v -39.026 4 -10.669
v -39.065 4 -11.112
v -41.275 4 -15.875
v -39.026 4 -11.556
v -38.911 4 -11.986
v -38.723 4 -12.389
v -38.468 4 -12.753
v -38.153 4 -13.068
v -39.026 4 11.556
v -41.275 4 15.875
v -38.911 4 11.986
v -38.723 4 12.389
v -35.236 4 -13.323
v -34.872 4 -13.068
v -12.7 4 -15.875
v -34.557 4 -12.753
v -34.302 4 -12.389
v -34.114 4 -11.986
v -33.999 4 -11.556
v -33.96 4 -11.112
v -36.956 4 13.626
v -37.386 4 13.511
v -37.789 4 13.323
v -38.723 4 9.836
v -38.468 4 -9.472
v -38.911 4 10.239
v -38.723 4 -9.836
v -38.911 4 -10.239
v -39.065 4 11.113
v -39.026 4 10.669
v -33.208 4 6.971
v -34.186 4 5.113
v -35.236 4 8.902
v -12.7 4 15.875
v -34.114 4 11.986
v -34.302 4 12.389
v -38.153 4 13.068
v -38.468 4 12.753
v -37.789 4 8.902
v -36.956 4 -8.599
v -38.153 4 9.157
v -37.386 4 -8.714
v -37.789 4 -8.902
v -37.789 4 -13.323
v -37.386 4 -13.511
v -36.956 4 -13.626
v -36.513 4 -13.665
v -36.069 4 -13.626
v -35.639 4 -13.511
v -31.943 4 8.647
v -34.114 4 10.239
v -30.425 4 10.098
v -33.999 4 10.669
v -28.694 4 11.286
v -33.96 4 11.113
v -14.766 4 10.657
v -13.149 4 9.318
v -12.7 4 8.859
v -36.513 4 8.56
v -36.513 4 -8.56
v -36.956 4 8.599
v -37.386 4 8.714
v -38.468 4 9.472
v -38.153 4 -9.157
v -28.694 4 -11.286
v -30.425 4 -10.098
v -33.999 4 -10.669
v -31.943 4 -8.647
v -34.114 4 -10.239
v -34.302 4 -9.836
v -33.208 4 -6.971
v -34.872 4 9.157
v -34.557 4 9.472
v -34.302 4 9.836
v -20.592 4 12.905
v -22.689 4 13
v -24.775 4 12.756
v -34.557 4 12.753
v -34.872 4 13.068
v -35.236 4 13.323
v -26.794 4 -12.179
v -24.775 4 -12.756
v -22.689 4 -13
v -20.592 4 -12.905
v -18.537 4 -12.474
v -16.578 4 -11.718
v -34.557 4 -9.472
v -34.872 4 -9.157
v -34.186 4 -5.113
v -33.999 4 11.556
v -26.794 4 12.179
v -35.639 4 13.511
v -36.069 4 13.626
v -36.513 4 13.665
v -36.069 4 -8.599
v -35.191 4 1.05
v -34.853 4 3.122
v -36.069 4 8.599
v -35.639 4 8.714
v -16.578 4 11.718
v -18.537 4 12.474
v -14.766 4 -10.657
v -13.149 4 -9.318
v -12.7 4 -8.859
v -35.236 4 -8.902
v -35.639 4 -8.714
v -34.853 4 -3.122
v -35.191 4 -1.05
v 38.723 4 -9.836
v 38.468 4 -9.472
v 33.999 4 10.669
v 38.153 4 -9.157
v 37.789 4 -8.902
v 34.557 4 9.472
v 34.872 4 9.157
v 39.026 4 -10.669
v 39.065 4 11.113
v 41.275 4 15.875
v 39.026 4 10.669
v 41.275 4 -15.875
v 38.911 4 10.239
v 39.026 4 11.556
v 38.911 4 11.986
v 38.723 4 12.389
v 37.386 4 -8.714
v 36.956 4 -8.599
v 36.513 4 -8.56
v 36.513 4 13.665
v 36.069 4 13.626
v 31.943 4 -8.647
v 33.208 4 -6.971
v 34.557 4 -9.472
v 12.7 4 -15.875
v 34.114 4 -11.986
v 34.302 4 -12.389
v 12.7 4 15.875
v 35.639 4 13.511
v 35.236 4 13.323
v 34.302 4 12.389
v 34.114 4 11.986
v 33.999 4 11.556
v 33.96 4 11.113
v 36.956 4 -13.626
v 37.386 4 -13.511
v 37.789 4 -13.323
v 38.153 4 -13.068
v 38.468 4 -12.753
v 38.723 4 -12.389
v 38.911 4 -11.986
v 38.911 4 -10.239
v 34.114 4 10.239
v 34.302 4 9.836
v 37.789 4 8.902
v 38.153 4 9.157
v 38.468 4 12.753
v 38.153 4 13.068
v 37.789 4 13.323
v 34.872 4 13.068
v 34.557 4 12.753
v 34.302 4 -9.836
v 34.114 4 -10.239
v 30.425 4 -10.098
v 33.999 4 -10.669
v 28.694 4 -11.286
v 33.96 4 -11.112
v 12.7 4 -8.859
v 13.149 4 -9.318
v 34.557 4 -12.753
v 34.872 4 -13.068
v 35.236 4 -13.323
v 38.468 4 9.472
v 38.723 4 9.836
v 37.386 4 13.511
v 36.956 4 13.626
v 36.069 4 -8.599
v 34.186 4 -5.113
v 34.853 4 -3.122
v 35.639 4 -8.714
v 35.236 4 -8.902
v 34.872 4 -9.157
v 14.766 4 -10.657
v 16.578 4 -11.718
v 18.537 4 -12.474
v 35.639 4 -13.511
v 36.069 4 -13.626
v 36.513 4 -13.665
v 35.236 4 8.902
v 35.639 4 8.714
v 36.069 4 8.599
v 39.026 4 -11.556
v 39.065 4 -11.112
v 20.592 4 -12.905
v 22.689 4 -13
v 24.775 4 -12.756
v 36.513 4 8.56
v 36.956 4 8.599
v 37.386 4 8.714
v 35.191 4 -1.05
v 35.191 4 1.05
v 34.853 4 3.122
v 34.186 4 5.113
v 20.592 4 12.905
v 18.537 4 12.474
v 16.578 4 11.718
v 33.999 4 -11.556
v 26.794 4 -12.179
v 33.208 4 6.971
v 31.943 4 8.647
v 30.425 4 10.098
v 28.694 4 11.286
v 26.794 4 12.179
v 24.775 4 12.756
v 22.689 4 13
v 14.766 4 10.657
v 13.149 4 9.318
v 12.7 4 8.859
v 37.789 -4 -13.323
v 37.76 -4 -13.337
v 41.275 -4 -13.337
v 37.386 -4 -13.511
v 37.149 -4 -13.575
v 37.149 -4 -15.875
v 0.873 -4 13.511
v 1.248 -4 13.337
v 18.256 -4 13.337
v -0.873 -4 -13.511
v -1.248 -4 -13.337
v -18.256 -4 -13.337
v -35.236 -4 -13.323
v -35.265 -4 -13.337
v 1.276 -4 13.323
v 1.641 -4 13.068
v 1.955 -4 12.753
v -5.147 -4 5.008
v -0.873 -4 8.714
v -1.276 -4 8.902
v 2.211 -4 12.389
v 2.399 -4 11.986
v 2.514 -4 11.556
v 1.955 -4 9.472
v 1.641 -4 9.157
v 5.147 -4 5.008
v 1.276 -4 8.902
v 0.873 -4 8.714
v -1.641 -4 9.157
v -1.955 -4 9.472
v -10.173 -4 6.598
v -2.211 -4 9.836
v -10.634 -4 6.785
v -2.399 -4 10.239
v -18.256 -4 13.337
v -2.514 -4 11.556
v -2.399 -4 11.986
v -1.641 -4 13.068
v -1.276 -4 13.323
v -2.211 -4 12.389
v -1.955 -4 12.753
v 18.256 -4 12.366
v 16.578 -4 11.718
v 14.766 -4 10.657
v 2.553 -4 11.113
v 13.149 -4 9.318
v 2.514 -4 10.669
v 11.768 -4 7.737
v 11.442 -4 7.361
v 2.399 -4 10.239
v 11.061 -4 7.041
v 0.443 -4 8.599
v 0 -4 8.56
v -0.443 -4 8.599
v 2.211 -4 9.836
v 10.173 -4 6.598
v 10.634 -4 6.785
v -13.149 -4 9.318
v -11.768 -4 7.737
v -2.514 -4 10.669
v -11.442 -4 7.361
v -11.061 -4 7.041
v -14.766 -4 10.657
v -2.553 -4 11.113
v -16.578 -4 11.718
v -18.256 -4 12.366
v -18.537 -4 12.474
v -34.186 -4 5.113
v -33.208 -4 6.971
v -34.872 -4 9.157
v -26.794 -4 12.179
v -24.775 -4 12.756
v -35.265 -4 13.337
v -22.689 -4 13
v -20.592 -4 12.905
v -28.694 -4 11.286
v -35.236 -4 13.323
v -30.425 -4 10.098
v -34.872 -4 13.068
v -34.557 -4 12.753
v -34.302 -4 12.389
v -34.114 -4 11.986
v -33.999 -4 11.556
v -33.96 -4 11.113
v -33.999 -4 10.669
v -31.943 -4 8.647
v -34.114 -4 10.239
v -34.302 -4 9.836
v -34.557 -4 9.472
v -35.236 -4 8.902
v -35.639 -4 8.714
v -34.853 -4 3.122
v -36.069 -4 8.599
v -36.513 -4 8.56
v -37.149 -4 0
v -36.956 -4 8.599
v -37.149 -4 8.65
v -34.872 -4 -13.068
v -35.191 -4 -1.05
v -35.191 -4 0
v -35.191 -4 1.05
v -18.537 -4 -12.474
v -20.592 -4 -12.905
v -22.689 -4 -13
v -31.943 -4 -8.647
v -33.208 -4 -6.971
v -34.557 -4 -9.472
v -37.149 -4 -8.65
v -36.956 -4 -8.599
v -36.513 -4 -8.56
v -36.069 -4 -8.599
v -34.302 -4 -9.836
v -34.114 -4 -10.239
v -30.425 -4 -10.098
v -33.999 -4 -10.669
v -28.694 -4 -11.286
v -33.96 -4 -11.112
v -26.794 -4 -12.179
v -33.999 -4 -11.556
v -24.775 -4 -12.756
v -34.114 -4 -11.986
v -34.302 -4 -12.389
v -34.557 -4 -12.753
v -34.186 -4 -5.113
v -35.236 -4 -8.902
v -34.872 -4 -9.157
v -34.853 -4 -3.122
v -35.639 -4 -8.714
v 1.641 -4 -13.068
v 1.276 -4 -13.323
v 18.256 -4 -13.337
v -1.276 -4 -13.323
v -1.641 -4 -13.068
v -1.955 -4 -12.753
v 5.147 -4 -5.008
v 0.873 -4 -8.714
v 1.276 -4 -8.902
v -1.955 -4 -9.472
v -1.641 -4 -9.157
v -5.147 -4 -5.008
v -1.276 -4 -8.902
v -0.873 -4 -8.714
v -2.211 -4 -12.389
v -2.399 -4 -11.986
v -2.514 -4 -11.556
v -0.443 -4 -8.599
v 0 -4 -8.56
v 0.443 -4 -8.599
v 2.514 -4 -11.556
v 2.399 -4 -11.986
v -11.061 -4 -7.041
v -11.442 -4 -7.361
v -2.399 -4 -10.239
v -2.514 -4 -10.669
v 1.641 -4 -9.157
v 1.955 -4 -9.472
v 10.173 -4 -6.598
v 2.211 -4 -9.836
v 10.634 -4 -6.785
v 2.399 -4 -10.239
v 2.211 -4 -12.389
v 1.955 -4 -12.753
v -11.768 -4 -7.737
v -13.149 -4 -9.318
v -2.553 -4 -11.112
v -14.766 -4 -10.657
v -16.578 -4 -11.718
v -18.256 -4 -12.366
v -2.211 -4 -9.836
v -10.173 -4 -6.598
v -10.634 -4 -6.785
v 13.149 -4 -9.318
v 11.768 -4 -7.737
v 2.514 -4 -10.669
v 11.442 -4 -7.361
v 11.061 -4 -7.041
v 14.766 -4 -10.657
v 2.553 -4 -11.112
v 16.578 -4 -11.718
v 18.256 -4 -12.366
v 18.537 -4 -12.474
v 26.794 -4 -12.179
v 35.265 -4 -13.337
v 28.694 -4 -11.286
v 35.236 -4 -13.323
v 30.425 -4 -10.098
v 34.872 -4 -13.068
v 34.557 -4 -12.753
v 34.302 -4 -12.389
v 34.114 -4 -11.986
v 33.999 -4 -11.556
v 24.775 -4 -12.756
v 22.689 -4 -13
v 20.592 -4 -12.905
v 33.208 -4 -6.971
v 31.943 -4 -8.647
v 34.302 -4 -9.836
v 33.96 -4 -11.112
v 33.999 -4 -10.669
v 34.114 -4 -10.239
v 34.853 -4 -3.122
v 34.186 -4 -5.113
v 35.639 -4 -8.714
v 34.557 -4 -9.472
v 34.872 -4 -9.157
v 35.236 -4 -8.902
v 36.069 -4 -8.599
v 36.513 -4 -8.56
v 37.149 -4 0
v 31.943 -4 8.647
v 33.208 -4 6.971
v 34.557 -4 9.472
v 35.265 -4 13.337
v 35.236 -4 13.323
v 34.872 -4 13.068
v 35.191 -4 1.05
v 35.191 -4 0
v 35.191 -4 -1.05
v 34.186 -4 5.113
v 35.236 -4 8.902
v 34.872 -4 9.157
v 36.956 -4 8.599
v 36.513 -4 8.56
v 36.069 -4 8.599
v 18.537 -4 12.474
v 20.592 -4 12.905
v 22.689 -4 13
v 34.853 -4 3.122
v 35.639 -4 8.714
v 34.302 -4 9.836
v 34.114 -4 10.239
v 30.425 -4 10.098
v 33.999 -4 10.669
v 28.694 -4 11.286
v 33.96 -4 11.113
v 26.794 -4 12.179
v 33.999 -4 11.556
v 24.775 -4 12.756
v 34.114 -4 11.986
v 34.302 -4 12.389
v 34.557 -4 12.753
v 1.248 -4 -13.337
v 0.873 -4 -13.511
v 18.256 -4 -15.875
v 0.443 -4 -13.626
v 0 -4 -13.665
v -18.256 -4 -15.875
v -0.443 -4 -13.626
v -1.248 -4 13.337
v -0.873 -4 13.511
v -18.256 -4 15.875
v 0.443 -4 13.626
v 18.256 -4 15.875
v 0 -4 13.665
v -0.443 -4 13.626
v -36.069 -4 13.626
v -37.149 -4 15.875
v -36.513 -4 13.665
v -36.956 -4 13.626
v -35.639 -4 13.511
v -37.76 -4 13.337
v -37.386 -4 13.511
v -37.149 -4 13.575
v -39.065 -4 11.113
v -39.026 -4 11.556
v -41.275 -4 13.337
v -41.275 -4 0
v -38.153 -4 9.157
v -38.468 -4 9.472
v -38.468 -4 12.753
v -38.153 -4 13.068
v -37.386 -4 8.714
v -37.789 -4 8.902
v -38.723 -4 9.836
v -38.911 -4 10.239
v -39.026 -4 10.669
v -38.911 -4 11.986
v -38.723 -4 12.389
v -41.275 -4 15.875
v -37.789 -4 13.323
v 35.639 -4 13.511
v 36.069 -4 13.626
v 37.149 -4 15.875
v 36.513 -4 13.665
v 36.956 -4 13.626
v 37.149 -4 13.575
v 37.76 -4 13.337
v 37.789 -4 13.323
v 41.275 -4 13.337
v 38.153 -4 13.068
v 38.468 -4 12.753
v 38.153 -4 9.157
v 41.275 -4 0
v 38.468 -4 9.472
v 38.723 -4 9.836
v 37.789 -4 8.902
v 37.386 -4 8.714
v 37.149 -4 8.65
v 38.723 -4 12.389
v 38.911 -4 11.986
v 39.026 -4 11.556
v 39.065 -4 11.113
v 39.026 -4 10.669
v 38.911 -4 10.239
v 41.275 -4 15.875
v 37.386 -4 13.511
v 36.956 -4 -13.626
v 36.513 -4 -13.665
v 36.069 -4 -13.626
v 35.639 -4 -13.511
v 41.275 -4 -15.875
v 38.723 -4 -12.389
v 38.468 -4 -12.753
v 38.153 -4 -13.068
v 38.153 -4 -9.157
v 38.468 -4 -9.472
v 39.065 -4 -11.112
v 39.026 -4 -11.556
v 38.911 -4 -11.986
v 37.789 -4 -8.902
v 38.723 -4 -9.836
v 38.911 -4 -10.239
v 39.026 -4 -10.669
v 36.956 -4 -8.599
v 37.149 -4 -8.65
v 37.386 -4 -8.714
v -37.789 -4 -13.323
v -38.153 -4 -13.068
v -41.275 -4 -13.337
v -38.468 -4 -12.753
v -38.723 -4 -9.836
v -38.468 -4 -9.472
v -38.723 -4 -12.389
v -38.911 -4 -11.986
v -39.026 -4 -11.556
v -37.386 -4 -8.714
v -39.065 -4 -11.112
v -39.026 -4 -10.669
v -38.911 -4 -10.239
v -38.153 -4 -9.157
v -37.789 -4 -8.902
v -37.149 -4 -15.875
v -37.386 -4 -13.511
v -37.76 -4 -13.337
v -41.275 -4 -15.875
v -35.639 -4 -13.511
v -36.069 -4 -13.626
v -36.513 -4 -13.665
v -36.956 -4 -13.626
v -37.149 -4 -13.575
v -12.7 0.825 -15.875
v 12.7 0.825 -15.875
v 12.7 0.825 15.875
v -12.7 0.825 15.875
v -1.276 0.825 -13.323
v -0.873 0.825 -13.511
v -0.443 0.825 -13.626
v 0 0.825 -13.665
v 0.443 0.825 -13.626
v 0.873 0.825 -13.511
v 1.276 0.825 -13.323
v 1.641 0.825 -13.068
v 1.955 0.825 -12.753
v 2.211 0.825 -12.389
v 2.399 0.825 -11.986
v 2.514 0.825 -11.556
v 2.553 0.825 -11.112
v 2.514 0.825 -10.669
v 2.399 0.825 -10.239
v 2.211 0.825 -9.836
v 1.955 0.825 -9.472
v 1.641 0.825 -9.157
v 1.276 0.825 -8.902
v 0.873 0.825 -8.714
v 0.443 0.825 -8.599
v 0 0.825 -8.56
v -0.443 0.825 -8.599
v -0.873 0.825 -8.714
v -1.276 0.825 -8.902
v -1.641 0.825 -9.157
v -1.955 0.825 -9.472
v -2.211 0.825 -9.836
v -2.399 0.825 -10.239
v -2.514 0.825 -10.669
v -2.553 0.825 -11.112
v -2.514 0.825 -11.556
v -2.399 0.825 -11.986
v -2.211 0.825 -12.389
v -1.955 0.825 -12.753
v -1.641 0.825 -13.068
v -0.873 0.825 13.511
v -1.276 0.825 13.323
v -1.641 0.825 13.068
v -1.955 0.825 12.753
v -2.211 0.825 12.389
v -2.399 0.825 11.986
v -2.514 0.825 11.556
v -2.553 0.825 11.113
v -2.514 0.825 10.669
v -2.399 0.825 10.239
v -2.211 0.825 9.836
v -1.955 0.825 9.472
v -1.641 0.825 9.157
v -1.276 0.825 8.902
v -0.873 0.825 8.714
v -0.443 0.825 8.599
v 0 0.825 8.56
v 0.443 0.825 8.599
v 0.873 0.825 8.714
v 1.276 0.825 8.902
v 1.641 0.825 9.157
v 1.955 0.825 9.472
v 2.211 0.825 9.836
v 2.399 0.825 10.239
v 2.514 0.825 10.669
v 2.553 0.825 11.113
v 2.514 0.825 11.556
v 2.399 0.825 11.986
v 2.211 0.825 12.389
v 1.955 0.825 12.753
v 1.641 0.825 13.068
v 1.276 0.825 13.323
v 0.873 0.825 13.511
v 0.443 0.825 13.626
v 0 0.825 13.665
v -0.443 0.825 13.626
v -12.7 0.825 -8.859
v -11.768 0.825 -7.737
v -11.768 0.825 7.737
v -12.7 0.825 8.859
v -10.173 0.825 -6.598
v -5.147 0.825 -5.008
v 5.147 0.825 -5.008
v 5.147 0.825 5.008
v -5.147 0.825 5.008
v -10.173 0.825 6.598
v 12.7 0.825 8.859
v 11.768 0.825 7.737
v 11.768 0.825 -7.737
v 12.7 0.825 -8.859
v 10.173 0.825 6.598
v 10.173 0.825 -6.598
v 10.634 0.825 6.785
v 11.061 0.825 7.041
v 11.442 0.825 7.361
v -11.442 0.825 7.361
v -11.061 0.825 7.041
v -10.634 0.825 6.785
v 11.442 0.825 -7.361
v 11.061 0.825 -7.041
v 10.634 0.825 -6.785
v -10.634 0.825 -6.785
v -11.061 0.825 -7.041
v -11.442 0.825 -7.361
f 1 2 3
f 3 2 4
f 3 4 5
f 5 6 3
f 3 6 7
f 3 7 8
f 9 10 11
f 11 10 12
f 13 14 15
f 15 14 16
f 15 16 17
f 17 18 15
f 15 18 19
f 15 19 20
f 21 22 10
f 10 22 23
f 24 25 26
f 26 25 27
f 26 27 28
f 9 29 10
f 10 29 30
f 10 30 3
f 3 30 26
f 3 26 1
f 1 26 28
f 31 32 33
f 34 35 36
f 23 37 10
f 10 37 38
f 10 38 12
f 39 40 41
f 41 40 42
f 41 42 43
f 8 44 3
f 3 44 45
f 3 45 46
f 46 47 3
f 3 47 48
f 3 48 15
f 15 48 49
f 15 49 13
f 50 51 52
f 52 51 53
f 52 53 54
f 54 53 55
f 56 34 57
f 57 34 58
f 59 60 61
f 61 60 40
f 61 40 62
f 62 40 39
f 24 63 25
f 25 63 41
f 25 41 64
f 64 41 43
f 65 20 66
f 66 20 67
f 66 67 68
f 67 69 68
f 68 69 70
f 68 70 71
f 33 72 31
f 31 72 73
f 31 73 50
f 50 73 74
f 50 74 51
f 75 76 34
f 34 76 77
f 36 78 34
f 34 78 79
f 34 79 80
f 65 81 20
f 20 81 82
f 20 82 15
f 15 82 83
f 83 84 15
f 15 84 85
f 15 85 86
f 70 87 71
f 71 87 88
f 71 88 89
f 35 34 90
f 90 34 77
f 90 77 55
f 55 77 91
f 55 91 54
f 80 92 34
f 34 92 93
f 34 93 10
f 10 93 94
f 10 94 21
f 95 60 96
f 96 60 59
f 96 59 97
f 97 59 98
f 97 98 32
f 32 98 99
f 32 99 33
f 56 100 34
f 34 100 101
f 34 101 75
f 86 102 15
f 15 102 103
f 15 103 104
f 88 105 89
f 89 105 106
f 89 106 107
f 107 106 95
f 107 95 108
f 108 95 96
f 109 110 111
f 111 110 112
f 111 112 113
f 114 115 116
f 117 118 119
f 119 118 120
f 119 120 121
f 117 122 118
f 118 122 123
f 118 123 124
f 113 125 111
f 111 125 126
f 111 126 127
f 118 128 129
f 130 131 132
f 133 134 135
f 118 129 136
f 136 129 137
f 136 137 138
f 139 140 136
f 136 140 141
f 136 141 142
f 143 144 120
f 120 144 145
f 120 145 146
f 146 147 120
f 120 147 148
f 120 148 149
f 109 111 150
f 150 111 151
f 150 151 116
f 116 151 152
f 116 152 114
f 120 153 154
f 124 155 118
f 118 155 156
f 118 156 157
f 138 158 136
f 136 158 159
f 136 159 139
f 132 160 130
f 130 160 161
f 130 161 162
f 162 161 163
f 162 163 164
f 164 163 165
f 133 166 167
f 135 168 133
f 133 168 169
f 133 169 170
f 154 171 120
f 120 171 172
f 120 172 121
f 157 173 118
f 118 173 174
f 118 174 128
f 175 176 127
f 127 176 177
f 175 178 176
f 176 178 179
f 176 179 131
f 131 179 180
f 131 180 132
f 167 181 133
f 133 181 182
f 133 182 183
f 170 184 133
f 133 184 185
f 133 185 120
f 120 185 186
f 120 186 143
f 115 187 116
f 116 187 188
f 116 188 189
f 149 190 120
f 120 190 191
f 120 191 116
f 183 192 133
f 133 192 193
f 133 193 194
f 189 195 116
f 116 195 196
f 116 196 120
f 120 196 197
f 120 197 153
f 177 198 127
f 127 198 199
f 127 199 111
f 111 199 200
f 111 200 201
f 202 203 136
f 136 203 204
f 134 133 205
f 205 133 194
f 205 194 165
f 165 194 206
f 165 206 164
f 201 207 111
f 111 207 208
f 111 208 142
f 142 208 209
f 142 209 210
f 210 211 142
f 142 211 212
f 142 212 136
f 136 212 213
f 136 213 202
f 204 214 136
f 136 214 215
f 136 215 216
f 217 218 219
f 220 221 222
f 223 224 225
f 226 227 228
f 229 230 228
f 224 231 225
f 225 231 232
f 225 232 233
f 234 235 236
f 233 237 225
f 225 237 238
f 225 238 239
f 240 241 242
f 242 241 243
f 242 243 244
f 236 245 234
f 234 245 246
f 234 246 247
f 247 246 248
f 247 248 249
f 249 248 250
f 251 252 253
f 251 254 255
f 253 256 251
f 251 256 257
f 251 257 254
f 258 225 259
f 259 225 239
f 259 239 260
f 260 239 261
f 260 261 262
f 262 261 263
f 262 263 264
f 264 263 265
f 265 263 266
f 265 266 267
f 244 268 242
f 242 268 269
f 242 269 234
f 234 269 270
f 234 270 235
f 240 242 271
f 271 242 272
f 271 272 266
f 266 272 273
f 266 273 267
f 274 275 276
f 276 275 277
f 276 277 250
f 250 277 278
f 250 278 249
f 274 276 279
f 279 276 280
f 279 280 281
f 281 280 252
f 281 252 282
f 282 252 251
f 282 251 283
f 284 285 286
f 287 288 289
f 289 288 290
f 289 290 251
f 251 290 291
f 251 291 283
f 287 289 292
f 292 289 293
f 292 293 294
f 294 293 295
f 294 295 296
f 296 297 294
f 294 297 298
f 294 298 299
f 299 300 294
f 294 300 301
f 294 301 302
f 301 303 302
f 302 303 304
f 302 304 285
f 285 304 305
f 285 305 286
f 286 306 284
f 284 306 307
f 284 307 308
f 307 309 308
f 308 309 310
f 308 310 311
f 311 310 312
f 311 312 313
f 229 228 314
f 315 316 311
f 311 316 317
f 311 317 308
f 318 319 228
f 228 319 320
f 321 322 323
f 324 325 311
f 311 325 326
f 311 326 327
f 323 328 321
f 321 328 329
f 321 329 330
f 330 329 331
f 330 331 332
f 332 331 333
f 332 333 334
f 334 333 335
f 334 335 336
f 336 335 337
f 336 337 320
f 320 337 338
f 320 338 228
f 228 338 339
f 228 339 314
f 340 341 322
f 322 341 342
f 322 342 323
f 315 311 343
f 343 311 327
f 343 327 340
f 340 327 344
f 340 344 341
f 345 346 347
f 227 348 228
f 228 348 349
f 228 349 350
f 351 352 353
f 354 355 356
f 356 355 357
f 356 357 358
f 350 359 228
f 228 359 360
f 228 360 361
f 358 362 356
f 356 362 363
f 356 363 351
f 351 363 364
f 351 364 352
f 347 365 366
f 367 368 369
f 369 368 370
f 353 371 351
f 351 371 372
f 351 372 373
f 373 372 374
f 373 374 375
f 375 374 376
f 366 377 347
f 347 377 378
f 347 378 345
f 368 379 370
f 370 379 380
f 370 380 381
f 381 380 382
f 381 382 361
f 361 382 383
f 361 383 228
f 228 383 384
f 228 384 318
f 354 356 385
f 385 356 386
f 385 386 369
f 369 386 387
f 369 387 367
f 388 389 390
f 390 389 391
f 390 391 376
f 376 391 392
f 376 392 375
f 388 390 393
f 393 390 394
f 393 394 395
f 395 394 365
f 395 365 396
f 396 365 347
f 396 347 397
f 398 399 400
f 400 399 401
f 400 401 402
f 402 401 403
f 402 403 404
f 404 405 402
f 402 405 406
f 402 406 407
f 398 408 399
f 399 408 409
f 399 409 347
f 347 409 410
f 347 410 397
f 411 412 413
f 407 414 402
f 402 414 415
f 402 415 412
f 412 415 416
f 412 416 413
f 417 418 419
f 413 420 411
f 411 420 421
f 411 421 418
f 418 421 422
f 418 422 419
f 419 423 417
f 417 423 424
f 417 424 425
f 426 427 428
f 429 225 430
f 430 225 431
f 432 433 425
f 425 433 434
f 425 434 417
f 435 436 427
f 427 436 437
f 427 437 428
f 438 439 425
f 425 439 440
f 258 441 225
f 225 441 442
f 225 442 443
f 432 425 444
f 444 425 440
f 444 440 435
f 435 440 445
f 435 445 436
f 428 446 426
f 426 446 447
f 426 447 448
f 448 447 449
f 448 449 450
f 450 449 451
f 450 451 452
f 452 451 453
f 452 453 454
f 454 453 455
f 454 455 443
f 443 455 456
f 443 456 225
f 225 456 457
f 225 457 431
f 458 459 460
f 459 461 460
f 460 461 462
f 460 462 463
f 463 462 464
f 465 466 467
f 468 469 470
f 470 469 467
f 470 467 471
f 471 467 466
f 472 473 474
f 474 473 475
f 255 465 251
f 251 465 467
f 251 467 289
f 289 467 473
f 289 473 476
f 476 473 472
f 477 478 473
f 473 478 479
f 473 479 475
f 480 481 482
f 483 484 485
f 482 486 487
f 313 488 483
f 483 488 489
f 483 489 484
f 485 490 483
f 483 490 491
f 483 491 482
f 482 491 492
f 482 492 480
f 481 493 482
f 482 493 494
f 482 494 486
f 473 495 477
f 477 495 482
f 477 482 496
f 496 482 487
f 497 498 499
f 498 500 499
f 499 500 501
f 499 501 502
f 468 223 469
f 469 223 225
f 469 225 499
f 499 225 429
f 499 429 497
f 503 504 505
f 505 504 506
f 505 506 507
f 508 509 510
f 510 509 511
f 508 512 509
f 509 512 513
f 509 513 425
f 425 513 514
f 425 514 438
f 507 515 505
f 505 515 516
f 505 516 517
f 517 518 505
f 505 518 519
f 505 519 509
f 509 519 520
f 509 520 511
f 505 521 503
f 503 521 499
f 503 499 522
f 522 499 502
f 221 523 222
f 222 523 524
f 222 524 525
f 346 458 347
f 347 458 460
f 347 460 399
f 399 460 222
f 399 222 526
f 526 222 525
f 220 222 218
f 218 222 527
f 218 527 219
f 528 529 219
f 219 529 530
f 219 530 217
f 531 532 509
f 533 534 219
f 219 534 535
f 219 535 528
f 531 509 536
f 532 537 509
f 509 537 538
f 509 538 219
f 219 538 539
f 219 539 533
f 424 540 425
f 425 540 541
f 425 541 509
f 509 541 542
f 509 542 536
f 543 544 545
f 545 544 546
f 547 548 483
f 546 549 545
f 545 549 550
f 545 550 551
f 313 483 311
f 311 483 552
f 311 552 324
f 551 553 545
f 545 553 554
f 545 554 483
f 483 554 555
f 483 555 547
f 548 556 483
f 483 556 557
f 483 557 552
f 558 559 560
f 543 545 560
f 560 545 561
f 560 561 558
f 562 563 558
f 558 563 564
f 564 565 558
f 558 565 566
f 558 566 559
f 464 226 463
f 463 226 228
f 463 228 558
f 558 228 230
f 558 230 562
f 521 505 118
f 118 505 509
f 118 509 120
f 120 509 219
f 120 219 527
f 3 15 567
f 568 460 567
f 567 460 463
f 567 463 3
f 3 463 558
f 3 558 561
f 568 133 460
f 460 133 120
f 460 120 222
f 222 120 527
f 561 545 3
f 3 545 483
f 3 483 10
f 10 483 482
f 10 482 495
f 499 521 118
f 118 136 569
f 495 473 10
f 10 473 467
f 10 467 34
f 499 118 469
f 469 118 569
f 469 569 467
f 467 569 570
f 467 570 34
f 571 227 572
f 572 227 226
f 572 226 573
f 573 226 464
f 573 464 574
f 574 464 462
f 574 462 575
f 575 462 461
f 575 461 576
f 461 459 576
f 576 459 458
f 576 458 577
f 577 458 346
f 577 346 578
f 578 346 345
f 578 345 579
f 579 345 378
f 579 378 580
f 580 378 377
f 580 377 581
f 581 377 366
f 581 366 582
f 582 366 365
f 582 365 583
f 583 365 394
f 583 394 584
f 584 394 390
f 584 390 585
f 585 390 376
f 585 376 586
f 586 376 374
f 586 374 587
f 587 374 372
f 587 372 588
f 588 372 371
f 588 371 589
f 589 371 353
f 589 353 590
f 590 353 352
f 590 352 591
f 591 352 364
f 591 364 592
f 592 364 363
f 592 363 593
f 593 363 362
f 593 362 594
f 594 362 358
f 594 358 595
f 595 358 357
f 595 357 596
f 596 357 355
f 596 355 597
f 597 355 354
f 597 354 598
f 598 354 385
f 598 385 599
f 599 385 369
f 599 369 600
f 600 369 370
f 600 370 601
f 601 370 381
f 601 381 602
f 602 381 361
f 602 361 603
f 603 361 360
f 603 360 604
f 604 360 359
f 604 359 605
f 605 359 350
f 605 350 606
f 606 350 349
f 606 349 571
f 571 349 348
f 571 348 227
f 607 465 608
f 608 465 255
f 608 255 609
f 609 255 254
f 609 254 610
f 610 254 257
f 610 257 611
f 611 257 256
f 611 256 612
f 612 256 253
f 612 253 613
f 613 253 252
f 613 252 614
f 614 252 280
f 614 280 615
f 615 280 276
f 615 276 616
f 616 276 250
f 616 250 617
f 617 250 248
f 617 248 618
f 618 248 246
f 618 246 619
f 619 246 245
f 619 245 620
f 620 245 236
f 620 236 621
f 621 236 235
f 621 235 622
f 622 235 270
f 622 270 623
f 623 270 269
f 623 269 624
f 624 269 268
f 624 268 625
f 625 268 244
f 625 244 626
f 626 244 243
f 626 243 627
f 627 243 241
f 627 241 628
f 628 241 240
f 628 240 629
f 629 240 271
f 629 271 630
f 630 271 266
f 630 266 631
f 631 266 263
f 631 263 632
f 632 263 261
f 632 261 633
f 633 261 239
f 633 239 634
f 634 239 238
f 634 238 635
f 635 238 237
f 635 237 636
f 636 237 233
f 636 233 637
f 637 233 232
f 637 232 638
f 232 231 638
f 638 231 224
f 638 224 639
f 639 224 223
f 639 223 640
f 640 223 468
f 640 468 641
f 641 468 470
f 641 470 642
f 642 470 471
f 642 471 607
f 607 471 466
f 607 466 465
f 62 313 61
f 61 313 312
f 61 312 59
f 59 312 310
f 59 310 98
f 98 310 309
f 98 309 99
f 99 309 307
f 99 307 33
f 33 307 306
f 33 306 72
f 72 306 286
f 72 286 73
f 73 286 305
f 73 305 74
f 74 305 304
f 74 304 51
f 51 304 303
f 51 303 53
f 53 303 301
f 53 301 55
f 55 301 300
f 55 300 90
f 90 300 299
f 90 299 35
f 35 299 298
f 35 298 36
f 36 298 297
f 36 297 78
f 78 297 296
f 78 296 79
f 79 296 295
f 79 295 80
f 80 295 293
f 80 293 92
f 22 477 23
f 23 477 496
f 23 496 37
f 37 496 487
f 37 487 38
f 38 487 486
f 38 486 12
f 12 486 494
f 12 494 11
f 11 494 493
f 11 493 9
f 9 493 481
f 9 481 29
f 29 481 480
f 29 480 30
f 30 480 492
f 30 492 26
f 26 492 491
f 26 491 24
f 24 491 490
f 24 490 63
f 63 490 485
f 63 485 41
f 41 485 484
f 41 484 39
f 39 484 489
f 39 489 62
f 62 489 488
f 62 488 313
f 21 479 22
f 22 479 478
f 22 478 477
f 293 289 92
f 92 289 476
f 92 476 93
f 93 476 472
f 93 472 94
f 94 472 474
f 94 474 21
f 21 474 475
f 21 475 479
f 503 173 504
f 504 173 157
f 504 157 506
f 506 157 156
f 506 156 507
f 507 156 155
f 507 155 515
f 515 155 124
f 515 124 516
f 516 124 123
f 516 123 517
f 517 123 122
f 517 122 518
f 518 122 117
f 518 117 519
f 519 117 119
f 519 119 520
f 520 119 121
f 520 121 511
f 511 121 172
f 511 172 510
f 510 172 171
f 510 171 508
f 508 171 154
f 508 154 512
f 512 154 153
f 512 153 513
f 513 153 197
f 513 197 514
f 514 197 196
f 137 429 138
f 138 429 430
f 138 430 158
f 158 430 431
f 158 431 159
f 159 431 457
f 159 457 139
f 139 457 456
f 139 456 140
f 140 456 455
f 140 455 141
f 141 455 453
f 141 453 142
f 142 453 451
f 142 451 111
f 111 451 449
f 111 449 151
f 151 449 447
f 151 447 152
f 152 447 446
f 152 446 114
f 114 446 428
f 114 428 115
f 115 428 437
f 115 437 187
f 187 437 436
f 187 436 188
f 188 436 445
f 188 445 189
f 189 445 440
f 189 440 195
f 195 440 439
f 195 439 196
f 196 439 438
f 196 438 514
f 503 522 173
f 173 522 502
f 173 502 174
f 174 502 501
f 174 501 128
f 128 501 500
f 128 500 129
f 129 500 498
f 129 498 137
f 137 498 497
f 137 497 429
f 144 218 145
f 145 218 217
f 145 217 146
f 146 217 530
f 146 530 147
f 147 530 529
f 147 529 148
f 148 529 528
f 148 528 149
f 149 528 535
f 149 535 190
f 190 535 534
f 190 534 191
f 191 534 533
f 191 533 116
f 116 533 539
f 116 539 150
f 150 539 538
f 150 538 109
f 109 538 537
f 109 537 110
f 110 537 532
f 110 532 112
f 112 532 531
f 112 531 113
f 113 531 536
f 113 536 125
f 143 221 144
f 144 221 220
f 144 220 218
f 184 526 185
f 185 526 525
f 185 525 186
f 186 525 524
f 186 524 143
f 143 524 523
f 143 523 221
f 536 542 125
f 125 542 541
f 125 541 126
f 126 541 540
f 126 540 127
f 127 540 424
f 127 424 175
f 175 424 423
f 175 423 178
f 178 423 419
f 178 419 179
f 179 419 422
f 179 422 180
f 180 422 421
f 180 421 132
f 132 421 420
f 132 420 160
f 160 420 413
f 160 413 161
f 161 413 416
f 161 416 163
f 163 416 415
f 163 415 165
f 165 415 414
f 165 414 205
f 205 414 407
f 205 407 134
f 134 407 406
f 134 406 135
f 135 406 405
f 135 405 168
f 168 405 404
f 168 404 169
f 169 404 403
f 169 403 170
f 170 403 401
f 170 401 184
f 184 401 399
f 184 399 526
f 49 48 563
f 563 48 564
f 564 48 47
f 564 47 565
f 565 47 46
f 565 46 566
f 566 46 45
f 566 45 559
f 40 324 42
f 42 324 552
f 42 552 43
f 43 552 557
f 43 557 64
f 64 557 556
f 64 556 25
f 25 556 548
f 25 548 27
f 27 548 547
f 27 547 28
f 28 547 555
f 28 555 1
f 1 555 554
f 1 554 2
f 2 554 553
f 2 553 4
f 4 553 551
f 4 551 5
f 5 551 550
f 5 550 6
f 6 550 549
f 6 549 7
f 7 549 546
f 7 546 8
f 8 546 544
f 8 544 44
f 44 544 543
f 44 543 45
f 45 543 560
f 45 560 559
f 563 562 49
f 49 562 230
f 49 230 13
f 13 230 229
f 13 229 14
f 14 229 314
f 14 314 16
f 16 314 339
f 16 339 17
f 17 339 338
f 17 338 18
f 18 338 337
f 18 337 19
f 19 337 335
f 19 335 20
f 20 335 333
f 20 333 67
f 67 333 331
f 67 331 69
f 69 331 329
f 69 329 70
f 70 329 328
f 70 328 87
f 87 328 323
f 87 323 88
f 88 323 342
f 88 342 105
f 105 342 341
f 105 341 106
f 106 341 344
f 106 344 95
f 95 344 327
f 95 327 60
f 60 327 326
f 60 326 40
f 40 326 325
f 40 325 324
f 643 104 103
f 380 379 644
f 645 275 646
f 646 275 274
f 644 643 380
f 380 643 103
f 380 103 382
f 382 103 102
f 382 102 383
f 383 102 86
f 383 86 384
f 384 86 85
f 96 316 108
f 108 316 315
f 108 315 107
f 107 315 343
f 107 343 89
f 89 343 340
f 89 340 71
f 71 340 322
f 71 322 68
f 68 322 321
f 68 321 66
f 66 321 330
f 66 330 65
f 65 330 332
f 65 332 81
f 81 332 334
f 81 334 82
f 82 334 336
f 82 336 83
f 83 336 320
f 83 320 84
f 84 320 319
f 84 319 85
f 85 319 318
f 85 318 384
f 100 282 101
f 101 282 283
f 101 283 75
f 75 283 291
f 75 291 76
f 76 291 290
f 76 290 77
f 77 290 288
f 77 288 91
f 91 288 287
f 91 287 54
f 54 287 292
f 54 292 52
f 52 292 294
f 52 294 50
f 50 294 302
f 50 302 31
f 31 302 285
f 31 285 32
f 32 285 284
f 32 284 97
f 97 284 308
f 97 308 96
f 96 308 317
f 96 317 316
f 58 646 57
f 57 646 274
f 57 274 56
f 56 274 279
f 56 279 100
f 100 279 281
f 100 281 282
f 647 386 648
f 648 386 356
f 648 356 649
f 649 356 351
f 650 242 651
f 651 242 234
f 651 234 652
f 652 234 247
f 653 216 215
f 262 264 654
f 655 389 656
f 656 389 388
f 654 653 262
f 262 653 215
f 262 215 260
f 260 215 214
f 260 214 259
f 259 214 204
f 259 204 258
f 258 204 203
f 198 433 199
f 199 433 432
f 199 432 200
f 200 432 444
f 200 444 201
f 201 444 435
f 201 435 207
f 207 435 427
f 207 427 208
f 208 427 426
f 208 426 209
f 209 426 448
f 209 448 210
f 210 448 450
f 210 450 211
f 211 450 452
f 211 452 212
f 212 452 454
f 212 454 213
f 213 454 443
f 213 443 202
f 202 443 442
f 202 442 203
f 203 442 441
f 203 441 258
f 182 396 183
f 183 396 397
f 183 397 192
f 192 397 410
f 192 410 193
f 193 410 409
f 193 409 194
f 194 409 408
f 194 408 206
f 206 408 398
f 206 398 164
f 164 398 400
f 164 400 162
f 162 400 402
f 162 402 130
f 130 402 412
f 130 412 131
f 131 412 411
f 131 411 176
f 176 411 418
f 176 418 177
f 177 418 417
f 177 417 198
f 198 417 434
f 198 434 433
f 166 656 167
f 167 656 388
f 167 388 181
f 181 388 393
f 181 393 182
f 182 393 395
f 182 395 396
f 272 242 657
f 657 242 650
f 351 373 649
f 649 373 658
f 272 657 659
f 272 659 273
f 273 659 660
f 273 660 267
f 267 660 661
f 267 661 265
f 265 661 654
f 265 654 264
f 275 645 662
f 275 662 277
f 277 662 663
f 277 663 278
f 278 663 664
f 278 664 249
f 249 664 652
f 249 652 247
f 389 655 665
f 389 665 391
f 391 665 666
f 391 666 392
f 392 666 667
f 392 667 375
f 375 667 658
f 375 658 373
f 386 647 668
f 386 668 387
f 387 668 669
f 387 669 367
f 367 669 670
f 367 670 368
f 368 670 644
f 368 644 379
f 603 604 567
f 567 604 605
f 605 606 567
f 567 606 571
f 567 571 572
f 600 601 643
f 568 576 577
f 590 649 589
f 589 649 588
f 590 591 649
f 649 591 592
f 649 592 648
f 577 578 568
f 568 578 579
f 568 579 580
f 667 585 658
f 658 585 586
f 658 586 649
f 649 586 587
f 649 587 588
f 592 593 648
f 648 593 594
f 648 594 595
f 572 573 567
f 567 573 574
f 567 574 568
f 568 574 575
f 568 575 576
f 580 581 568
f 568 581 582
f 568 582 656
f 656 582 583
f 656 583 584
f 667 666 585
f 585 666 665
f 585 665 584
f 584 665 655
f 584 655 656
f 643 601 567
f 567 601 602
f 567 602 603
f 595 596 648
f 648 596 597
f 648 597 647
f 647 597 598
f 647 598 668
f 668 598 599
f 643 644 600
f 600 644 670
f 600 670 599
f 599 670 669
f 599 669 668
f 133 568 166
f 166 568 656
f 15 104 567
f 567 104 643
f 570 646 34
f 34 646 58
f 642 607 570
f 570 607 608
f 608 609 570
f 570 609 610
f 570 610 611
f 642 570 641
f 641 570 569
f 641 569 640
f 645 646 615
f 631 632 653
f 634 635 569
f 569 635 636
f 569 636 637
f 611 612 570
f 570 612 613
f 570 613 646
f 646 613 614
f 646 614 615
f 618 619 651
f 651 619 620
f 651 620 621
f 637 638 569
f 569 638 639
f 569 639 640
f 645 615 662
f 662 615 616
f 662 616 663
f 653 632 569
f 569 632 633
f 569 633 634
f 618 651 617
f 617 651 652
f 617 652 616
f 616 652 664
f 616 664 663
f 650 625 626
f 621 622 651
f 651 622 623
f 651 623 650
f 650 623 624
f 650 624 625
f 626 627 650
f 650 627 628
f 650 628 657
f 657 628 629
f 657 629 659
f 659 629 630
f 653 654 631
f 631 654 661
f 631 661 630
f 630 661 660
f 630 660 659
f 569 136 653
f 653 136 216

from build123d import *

# Parameters (mm, degrees)
SKETCH1_W              = 82.55
SKETCH1_H              = 31.75
PLATE_DEPTH            = 4
F_10_CLEARANCE_HOLE1_D = 5.1054
LOAD_CELL_CUTOUT_REACH = 46.94
FILLET1_R              = 3.175
SKETCH8_W              = 25.4
SKETCH8_H              = 3.175
CABLE_CUTOUT_DEPTH     = 53.227273766


with BuildPart() as part:
    # Sketch1 → Plate (new, symmetric)
    with BuildSketch(Plane(origin=(0, 0, 0), x_dir=(1, 0, 0), z_dir=(0, 1, 0))):
        Rectangle(SKETCH1_W, SKETCH1_H)
    extrude(amount=PLATE_DEPTH, both=True)

    # #10 Clearance Hole1 (through all)
    with Locations(Plane(origin=(0, 4, 0), x_dir=(1, 0, 0), z_dir=(0, 1, 0))):
        with Locations((-36.5125, 11.1125), (36.5125, 11.1125), (36.5125, -11.1125), (-36.5125, -11.1125), (0, -11.1125), (0, 11.1125)):
            Hole(F_10_CLEARANCE_HOLE1_D / 2)

    # Sketch4 → Load Cell Cutout (cut, up to next)
    with BuildSketch(Plane(origin=(0, 4, 0), x_dir=(1, 0, 0), z_dir=(0, 1, 0)), mode=Mode.PRIVATE) as load_cell_cutout_sk1:
        with BuildLine():
            Line((-11.215130837, 6.927542495), (-5.146572344, 5.008))
            Line((-5.146572344, 5.008), (0.508, 5.008))
            Line((0.508, 5.008), (0.508, -5.008))
            Line((0.508, -5.008), (-5.146572344, -5.008))
            Line((-5.146572344, -5.008), (-11.215130837, -6.927542495))
            ThreePointArc((-11.215130837, -6.927542495), (-35.233, 0), (-11.215130837, 6.927542495))
        make_face()
    load_cell_cutout_tool1 = extrude(load_cell_cutout_sk1.sketch, amount=-LOAD_CELL_CUTOUT_REACH, mode=Mode.PRIVATE) & part.part
    load_cell_cutout = load_cell_cutout_tool1.solids().sort_by_distance((-19.247543, 4, 0))[0]
    add(load_cell_cutout, mode=Mode.SUBTRACT)

    # Cutout Mirror: Load Cell Cutout across plane
    add(load_cell_cutout.mirror(Plane(origin=(0, 0, 0), x_dir=(0, 0, 1), z_dir=(1, 0, 0))), mode=Mode.SUBTRACT)

    # Fillet1
    fillet1_edges = [part.edges().sort_by_distance(p)[0] for p in [
        (-11.215130837, 0, 6.927542495),
        (-11.215130837, 0, -6.927542495),
        (11.215130837, 0, -6.927542495),
        (11.215130837, 0, 6.927542495),
    ]]
    fillet(fillet1_edges, radius=FILLET1_R)

    # Sketch8 → Cable Cutout (cut, through all)
    with BuildSketch(Plane.XY.offset(15.875)):
        with Locations((0, 2.4125)):
            Rectangle(SKETCH8_W, SKETCH8_H)
    extrude(amount=-CABLE_CUTOUT_DEPTH, mode=Mode.SUBTRACT)


solid = part.part
